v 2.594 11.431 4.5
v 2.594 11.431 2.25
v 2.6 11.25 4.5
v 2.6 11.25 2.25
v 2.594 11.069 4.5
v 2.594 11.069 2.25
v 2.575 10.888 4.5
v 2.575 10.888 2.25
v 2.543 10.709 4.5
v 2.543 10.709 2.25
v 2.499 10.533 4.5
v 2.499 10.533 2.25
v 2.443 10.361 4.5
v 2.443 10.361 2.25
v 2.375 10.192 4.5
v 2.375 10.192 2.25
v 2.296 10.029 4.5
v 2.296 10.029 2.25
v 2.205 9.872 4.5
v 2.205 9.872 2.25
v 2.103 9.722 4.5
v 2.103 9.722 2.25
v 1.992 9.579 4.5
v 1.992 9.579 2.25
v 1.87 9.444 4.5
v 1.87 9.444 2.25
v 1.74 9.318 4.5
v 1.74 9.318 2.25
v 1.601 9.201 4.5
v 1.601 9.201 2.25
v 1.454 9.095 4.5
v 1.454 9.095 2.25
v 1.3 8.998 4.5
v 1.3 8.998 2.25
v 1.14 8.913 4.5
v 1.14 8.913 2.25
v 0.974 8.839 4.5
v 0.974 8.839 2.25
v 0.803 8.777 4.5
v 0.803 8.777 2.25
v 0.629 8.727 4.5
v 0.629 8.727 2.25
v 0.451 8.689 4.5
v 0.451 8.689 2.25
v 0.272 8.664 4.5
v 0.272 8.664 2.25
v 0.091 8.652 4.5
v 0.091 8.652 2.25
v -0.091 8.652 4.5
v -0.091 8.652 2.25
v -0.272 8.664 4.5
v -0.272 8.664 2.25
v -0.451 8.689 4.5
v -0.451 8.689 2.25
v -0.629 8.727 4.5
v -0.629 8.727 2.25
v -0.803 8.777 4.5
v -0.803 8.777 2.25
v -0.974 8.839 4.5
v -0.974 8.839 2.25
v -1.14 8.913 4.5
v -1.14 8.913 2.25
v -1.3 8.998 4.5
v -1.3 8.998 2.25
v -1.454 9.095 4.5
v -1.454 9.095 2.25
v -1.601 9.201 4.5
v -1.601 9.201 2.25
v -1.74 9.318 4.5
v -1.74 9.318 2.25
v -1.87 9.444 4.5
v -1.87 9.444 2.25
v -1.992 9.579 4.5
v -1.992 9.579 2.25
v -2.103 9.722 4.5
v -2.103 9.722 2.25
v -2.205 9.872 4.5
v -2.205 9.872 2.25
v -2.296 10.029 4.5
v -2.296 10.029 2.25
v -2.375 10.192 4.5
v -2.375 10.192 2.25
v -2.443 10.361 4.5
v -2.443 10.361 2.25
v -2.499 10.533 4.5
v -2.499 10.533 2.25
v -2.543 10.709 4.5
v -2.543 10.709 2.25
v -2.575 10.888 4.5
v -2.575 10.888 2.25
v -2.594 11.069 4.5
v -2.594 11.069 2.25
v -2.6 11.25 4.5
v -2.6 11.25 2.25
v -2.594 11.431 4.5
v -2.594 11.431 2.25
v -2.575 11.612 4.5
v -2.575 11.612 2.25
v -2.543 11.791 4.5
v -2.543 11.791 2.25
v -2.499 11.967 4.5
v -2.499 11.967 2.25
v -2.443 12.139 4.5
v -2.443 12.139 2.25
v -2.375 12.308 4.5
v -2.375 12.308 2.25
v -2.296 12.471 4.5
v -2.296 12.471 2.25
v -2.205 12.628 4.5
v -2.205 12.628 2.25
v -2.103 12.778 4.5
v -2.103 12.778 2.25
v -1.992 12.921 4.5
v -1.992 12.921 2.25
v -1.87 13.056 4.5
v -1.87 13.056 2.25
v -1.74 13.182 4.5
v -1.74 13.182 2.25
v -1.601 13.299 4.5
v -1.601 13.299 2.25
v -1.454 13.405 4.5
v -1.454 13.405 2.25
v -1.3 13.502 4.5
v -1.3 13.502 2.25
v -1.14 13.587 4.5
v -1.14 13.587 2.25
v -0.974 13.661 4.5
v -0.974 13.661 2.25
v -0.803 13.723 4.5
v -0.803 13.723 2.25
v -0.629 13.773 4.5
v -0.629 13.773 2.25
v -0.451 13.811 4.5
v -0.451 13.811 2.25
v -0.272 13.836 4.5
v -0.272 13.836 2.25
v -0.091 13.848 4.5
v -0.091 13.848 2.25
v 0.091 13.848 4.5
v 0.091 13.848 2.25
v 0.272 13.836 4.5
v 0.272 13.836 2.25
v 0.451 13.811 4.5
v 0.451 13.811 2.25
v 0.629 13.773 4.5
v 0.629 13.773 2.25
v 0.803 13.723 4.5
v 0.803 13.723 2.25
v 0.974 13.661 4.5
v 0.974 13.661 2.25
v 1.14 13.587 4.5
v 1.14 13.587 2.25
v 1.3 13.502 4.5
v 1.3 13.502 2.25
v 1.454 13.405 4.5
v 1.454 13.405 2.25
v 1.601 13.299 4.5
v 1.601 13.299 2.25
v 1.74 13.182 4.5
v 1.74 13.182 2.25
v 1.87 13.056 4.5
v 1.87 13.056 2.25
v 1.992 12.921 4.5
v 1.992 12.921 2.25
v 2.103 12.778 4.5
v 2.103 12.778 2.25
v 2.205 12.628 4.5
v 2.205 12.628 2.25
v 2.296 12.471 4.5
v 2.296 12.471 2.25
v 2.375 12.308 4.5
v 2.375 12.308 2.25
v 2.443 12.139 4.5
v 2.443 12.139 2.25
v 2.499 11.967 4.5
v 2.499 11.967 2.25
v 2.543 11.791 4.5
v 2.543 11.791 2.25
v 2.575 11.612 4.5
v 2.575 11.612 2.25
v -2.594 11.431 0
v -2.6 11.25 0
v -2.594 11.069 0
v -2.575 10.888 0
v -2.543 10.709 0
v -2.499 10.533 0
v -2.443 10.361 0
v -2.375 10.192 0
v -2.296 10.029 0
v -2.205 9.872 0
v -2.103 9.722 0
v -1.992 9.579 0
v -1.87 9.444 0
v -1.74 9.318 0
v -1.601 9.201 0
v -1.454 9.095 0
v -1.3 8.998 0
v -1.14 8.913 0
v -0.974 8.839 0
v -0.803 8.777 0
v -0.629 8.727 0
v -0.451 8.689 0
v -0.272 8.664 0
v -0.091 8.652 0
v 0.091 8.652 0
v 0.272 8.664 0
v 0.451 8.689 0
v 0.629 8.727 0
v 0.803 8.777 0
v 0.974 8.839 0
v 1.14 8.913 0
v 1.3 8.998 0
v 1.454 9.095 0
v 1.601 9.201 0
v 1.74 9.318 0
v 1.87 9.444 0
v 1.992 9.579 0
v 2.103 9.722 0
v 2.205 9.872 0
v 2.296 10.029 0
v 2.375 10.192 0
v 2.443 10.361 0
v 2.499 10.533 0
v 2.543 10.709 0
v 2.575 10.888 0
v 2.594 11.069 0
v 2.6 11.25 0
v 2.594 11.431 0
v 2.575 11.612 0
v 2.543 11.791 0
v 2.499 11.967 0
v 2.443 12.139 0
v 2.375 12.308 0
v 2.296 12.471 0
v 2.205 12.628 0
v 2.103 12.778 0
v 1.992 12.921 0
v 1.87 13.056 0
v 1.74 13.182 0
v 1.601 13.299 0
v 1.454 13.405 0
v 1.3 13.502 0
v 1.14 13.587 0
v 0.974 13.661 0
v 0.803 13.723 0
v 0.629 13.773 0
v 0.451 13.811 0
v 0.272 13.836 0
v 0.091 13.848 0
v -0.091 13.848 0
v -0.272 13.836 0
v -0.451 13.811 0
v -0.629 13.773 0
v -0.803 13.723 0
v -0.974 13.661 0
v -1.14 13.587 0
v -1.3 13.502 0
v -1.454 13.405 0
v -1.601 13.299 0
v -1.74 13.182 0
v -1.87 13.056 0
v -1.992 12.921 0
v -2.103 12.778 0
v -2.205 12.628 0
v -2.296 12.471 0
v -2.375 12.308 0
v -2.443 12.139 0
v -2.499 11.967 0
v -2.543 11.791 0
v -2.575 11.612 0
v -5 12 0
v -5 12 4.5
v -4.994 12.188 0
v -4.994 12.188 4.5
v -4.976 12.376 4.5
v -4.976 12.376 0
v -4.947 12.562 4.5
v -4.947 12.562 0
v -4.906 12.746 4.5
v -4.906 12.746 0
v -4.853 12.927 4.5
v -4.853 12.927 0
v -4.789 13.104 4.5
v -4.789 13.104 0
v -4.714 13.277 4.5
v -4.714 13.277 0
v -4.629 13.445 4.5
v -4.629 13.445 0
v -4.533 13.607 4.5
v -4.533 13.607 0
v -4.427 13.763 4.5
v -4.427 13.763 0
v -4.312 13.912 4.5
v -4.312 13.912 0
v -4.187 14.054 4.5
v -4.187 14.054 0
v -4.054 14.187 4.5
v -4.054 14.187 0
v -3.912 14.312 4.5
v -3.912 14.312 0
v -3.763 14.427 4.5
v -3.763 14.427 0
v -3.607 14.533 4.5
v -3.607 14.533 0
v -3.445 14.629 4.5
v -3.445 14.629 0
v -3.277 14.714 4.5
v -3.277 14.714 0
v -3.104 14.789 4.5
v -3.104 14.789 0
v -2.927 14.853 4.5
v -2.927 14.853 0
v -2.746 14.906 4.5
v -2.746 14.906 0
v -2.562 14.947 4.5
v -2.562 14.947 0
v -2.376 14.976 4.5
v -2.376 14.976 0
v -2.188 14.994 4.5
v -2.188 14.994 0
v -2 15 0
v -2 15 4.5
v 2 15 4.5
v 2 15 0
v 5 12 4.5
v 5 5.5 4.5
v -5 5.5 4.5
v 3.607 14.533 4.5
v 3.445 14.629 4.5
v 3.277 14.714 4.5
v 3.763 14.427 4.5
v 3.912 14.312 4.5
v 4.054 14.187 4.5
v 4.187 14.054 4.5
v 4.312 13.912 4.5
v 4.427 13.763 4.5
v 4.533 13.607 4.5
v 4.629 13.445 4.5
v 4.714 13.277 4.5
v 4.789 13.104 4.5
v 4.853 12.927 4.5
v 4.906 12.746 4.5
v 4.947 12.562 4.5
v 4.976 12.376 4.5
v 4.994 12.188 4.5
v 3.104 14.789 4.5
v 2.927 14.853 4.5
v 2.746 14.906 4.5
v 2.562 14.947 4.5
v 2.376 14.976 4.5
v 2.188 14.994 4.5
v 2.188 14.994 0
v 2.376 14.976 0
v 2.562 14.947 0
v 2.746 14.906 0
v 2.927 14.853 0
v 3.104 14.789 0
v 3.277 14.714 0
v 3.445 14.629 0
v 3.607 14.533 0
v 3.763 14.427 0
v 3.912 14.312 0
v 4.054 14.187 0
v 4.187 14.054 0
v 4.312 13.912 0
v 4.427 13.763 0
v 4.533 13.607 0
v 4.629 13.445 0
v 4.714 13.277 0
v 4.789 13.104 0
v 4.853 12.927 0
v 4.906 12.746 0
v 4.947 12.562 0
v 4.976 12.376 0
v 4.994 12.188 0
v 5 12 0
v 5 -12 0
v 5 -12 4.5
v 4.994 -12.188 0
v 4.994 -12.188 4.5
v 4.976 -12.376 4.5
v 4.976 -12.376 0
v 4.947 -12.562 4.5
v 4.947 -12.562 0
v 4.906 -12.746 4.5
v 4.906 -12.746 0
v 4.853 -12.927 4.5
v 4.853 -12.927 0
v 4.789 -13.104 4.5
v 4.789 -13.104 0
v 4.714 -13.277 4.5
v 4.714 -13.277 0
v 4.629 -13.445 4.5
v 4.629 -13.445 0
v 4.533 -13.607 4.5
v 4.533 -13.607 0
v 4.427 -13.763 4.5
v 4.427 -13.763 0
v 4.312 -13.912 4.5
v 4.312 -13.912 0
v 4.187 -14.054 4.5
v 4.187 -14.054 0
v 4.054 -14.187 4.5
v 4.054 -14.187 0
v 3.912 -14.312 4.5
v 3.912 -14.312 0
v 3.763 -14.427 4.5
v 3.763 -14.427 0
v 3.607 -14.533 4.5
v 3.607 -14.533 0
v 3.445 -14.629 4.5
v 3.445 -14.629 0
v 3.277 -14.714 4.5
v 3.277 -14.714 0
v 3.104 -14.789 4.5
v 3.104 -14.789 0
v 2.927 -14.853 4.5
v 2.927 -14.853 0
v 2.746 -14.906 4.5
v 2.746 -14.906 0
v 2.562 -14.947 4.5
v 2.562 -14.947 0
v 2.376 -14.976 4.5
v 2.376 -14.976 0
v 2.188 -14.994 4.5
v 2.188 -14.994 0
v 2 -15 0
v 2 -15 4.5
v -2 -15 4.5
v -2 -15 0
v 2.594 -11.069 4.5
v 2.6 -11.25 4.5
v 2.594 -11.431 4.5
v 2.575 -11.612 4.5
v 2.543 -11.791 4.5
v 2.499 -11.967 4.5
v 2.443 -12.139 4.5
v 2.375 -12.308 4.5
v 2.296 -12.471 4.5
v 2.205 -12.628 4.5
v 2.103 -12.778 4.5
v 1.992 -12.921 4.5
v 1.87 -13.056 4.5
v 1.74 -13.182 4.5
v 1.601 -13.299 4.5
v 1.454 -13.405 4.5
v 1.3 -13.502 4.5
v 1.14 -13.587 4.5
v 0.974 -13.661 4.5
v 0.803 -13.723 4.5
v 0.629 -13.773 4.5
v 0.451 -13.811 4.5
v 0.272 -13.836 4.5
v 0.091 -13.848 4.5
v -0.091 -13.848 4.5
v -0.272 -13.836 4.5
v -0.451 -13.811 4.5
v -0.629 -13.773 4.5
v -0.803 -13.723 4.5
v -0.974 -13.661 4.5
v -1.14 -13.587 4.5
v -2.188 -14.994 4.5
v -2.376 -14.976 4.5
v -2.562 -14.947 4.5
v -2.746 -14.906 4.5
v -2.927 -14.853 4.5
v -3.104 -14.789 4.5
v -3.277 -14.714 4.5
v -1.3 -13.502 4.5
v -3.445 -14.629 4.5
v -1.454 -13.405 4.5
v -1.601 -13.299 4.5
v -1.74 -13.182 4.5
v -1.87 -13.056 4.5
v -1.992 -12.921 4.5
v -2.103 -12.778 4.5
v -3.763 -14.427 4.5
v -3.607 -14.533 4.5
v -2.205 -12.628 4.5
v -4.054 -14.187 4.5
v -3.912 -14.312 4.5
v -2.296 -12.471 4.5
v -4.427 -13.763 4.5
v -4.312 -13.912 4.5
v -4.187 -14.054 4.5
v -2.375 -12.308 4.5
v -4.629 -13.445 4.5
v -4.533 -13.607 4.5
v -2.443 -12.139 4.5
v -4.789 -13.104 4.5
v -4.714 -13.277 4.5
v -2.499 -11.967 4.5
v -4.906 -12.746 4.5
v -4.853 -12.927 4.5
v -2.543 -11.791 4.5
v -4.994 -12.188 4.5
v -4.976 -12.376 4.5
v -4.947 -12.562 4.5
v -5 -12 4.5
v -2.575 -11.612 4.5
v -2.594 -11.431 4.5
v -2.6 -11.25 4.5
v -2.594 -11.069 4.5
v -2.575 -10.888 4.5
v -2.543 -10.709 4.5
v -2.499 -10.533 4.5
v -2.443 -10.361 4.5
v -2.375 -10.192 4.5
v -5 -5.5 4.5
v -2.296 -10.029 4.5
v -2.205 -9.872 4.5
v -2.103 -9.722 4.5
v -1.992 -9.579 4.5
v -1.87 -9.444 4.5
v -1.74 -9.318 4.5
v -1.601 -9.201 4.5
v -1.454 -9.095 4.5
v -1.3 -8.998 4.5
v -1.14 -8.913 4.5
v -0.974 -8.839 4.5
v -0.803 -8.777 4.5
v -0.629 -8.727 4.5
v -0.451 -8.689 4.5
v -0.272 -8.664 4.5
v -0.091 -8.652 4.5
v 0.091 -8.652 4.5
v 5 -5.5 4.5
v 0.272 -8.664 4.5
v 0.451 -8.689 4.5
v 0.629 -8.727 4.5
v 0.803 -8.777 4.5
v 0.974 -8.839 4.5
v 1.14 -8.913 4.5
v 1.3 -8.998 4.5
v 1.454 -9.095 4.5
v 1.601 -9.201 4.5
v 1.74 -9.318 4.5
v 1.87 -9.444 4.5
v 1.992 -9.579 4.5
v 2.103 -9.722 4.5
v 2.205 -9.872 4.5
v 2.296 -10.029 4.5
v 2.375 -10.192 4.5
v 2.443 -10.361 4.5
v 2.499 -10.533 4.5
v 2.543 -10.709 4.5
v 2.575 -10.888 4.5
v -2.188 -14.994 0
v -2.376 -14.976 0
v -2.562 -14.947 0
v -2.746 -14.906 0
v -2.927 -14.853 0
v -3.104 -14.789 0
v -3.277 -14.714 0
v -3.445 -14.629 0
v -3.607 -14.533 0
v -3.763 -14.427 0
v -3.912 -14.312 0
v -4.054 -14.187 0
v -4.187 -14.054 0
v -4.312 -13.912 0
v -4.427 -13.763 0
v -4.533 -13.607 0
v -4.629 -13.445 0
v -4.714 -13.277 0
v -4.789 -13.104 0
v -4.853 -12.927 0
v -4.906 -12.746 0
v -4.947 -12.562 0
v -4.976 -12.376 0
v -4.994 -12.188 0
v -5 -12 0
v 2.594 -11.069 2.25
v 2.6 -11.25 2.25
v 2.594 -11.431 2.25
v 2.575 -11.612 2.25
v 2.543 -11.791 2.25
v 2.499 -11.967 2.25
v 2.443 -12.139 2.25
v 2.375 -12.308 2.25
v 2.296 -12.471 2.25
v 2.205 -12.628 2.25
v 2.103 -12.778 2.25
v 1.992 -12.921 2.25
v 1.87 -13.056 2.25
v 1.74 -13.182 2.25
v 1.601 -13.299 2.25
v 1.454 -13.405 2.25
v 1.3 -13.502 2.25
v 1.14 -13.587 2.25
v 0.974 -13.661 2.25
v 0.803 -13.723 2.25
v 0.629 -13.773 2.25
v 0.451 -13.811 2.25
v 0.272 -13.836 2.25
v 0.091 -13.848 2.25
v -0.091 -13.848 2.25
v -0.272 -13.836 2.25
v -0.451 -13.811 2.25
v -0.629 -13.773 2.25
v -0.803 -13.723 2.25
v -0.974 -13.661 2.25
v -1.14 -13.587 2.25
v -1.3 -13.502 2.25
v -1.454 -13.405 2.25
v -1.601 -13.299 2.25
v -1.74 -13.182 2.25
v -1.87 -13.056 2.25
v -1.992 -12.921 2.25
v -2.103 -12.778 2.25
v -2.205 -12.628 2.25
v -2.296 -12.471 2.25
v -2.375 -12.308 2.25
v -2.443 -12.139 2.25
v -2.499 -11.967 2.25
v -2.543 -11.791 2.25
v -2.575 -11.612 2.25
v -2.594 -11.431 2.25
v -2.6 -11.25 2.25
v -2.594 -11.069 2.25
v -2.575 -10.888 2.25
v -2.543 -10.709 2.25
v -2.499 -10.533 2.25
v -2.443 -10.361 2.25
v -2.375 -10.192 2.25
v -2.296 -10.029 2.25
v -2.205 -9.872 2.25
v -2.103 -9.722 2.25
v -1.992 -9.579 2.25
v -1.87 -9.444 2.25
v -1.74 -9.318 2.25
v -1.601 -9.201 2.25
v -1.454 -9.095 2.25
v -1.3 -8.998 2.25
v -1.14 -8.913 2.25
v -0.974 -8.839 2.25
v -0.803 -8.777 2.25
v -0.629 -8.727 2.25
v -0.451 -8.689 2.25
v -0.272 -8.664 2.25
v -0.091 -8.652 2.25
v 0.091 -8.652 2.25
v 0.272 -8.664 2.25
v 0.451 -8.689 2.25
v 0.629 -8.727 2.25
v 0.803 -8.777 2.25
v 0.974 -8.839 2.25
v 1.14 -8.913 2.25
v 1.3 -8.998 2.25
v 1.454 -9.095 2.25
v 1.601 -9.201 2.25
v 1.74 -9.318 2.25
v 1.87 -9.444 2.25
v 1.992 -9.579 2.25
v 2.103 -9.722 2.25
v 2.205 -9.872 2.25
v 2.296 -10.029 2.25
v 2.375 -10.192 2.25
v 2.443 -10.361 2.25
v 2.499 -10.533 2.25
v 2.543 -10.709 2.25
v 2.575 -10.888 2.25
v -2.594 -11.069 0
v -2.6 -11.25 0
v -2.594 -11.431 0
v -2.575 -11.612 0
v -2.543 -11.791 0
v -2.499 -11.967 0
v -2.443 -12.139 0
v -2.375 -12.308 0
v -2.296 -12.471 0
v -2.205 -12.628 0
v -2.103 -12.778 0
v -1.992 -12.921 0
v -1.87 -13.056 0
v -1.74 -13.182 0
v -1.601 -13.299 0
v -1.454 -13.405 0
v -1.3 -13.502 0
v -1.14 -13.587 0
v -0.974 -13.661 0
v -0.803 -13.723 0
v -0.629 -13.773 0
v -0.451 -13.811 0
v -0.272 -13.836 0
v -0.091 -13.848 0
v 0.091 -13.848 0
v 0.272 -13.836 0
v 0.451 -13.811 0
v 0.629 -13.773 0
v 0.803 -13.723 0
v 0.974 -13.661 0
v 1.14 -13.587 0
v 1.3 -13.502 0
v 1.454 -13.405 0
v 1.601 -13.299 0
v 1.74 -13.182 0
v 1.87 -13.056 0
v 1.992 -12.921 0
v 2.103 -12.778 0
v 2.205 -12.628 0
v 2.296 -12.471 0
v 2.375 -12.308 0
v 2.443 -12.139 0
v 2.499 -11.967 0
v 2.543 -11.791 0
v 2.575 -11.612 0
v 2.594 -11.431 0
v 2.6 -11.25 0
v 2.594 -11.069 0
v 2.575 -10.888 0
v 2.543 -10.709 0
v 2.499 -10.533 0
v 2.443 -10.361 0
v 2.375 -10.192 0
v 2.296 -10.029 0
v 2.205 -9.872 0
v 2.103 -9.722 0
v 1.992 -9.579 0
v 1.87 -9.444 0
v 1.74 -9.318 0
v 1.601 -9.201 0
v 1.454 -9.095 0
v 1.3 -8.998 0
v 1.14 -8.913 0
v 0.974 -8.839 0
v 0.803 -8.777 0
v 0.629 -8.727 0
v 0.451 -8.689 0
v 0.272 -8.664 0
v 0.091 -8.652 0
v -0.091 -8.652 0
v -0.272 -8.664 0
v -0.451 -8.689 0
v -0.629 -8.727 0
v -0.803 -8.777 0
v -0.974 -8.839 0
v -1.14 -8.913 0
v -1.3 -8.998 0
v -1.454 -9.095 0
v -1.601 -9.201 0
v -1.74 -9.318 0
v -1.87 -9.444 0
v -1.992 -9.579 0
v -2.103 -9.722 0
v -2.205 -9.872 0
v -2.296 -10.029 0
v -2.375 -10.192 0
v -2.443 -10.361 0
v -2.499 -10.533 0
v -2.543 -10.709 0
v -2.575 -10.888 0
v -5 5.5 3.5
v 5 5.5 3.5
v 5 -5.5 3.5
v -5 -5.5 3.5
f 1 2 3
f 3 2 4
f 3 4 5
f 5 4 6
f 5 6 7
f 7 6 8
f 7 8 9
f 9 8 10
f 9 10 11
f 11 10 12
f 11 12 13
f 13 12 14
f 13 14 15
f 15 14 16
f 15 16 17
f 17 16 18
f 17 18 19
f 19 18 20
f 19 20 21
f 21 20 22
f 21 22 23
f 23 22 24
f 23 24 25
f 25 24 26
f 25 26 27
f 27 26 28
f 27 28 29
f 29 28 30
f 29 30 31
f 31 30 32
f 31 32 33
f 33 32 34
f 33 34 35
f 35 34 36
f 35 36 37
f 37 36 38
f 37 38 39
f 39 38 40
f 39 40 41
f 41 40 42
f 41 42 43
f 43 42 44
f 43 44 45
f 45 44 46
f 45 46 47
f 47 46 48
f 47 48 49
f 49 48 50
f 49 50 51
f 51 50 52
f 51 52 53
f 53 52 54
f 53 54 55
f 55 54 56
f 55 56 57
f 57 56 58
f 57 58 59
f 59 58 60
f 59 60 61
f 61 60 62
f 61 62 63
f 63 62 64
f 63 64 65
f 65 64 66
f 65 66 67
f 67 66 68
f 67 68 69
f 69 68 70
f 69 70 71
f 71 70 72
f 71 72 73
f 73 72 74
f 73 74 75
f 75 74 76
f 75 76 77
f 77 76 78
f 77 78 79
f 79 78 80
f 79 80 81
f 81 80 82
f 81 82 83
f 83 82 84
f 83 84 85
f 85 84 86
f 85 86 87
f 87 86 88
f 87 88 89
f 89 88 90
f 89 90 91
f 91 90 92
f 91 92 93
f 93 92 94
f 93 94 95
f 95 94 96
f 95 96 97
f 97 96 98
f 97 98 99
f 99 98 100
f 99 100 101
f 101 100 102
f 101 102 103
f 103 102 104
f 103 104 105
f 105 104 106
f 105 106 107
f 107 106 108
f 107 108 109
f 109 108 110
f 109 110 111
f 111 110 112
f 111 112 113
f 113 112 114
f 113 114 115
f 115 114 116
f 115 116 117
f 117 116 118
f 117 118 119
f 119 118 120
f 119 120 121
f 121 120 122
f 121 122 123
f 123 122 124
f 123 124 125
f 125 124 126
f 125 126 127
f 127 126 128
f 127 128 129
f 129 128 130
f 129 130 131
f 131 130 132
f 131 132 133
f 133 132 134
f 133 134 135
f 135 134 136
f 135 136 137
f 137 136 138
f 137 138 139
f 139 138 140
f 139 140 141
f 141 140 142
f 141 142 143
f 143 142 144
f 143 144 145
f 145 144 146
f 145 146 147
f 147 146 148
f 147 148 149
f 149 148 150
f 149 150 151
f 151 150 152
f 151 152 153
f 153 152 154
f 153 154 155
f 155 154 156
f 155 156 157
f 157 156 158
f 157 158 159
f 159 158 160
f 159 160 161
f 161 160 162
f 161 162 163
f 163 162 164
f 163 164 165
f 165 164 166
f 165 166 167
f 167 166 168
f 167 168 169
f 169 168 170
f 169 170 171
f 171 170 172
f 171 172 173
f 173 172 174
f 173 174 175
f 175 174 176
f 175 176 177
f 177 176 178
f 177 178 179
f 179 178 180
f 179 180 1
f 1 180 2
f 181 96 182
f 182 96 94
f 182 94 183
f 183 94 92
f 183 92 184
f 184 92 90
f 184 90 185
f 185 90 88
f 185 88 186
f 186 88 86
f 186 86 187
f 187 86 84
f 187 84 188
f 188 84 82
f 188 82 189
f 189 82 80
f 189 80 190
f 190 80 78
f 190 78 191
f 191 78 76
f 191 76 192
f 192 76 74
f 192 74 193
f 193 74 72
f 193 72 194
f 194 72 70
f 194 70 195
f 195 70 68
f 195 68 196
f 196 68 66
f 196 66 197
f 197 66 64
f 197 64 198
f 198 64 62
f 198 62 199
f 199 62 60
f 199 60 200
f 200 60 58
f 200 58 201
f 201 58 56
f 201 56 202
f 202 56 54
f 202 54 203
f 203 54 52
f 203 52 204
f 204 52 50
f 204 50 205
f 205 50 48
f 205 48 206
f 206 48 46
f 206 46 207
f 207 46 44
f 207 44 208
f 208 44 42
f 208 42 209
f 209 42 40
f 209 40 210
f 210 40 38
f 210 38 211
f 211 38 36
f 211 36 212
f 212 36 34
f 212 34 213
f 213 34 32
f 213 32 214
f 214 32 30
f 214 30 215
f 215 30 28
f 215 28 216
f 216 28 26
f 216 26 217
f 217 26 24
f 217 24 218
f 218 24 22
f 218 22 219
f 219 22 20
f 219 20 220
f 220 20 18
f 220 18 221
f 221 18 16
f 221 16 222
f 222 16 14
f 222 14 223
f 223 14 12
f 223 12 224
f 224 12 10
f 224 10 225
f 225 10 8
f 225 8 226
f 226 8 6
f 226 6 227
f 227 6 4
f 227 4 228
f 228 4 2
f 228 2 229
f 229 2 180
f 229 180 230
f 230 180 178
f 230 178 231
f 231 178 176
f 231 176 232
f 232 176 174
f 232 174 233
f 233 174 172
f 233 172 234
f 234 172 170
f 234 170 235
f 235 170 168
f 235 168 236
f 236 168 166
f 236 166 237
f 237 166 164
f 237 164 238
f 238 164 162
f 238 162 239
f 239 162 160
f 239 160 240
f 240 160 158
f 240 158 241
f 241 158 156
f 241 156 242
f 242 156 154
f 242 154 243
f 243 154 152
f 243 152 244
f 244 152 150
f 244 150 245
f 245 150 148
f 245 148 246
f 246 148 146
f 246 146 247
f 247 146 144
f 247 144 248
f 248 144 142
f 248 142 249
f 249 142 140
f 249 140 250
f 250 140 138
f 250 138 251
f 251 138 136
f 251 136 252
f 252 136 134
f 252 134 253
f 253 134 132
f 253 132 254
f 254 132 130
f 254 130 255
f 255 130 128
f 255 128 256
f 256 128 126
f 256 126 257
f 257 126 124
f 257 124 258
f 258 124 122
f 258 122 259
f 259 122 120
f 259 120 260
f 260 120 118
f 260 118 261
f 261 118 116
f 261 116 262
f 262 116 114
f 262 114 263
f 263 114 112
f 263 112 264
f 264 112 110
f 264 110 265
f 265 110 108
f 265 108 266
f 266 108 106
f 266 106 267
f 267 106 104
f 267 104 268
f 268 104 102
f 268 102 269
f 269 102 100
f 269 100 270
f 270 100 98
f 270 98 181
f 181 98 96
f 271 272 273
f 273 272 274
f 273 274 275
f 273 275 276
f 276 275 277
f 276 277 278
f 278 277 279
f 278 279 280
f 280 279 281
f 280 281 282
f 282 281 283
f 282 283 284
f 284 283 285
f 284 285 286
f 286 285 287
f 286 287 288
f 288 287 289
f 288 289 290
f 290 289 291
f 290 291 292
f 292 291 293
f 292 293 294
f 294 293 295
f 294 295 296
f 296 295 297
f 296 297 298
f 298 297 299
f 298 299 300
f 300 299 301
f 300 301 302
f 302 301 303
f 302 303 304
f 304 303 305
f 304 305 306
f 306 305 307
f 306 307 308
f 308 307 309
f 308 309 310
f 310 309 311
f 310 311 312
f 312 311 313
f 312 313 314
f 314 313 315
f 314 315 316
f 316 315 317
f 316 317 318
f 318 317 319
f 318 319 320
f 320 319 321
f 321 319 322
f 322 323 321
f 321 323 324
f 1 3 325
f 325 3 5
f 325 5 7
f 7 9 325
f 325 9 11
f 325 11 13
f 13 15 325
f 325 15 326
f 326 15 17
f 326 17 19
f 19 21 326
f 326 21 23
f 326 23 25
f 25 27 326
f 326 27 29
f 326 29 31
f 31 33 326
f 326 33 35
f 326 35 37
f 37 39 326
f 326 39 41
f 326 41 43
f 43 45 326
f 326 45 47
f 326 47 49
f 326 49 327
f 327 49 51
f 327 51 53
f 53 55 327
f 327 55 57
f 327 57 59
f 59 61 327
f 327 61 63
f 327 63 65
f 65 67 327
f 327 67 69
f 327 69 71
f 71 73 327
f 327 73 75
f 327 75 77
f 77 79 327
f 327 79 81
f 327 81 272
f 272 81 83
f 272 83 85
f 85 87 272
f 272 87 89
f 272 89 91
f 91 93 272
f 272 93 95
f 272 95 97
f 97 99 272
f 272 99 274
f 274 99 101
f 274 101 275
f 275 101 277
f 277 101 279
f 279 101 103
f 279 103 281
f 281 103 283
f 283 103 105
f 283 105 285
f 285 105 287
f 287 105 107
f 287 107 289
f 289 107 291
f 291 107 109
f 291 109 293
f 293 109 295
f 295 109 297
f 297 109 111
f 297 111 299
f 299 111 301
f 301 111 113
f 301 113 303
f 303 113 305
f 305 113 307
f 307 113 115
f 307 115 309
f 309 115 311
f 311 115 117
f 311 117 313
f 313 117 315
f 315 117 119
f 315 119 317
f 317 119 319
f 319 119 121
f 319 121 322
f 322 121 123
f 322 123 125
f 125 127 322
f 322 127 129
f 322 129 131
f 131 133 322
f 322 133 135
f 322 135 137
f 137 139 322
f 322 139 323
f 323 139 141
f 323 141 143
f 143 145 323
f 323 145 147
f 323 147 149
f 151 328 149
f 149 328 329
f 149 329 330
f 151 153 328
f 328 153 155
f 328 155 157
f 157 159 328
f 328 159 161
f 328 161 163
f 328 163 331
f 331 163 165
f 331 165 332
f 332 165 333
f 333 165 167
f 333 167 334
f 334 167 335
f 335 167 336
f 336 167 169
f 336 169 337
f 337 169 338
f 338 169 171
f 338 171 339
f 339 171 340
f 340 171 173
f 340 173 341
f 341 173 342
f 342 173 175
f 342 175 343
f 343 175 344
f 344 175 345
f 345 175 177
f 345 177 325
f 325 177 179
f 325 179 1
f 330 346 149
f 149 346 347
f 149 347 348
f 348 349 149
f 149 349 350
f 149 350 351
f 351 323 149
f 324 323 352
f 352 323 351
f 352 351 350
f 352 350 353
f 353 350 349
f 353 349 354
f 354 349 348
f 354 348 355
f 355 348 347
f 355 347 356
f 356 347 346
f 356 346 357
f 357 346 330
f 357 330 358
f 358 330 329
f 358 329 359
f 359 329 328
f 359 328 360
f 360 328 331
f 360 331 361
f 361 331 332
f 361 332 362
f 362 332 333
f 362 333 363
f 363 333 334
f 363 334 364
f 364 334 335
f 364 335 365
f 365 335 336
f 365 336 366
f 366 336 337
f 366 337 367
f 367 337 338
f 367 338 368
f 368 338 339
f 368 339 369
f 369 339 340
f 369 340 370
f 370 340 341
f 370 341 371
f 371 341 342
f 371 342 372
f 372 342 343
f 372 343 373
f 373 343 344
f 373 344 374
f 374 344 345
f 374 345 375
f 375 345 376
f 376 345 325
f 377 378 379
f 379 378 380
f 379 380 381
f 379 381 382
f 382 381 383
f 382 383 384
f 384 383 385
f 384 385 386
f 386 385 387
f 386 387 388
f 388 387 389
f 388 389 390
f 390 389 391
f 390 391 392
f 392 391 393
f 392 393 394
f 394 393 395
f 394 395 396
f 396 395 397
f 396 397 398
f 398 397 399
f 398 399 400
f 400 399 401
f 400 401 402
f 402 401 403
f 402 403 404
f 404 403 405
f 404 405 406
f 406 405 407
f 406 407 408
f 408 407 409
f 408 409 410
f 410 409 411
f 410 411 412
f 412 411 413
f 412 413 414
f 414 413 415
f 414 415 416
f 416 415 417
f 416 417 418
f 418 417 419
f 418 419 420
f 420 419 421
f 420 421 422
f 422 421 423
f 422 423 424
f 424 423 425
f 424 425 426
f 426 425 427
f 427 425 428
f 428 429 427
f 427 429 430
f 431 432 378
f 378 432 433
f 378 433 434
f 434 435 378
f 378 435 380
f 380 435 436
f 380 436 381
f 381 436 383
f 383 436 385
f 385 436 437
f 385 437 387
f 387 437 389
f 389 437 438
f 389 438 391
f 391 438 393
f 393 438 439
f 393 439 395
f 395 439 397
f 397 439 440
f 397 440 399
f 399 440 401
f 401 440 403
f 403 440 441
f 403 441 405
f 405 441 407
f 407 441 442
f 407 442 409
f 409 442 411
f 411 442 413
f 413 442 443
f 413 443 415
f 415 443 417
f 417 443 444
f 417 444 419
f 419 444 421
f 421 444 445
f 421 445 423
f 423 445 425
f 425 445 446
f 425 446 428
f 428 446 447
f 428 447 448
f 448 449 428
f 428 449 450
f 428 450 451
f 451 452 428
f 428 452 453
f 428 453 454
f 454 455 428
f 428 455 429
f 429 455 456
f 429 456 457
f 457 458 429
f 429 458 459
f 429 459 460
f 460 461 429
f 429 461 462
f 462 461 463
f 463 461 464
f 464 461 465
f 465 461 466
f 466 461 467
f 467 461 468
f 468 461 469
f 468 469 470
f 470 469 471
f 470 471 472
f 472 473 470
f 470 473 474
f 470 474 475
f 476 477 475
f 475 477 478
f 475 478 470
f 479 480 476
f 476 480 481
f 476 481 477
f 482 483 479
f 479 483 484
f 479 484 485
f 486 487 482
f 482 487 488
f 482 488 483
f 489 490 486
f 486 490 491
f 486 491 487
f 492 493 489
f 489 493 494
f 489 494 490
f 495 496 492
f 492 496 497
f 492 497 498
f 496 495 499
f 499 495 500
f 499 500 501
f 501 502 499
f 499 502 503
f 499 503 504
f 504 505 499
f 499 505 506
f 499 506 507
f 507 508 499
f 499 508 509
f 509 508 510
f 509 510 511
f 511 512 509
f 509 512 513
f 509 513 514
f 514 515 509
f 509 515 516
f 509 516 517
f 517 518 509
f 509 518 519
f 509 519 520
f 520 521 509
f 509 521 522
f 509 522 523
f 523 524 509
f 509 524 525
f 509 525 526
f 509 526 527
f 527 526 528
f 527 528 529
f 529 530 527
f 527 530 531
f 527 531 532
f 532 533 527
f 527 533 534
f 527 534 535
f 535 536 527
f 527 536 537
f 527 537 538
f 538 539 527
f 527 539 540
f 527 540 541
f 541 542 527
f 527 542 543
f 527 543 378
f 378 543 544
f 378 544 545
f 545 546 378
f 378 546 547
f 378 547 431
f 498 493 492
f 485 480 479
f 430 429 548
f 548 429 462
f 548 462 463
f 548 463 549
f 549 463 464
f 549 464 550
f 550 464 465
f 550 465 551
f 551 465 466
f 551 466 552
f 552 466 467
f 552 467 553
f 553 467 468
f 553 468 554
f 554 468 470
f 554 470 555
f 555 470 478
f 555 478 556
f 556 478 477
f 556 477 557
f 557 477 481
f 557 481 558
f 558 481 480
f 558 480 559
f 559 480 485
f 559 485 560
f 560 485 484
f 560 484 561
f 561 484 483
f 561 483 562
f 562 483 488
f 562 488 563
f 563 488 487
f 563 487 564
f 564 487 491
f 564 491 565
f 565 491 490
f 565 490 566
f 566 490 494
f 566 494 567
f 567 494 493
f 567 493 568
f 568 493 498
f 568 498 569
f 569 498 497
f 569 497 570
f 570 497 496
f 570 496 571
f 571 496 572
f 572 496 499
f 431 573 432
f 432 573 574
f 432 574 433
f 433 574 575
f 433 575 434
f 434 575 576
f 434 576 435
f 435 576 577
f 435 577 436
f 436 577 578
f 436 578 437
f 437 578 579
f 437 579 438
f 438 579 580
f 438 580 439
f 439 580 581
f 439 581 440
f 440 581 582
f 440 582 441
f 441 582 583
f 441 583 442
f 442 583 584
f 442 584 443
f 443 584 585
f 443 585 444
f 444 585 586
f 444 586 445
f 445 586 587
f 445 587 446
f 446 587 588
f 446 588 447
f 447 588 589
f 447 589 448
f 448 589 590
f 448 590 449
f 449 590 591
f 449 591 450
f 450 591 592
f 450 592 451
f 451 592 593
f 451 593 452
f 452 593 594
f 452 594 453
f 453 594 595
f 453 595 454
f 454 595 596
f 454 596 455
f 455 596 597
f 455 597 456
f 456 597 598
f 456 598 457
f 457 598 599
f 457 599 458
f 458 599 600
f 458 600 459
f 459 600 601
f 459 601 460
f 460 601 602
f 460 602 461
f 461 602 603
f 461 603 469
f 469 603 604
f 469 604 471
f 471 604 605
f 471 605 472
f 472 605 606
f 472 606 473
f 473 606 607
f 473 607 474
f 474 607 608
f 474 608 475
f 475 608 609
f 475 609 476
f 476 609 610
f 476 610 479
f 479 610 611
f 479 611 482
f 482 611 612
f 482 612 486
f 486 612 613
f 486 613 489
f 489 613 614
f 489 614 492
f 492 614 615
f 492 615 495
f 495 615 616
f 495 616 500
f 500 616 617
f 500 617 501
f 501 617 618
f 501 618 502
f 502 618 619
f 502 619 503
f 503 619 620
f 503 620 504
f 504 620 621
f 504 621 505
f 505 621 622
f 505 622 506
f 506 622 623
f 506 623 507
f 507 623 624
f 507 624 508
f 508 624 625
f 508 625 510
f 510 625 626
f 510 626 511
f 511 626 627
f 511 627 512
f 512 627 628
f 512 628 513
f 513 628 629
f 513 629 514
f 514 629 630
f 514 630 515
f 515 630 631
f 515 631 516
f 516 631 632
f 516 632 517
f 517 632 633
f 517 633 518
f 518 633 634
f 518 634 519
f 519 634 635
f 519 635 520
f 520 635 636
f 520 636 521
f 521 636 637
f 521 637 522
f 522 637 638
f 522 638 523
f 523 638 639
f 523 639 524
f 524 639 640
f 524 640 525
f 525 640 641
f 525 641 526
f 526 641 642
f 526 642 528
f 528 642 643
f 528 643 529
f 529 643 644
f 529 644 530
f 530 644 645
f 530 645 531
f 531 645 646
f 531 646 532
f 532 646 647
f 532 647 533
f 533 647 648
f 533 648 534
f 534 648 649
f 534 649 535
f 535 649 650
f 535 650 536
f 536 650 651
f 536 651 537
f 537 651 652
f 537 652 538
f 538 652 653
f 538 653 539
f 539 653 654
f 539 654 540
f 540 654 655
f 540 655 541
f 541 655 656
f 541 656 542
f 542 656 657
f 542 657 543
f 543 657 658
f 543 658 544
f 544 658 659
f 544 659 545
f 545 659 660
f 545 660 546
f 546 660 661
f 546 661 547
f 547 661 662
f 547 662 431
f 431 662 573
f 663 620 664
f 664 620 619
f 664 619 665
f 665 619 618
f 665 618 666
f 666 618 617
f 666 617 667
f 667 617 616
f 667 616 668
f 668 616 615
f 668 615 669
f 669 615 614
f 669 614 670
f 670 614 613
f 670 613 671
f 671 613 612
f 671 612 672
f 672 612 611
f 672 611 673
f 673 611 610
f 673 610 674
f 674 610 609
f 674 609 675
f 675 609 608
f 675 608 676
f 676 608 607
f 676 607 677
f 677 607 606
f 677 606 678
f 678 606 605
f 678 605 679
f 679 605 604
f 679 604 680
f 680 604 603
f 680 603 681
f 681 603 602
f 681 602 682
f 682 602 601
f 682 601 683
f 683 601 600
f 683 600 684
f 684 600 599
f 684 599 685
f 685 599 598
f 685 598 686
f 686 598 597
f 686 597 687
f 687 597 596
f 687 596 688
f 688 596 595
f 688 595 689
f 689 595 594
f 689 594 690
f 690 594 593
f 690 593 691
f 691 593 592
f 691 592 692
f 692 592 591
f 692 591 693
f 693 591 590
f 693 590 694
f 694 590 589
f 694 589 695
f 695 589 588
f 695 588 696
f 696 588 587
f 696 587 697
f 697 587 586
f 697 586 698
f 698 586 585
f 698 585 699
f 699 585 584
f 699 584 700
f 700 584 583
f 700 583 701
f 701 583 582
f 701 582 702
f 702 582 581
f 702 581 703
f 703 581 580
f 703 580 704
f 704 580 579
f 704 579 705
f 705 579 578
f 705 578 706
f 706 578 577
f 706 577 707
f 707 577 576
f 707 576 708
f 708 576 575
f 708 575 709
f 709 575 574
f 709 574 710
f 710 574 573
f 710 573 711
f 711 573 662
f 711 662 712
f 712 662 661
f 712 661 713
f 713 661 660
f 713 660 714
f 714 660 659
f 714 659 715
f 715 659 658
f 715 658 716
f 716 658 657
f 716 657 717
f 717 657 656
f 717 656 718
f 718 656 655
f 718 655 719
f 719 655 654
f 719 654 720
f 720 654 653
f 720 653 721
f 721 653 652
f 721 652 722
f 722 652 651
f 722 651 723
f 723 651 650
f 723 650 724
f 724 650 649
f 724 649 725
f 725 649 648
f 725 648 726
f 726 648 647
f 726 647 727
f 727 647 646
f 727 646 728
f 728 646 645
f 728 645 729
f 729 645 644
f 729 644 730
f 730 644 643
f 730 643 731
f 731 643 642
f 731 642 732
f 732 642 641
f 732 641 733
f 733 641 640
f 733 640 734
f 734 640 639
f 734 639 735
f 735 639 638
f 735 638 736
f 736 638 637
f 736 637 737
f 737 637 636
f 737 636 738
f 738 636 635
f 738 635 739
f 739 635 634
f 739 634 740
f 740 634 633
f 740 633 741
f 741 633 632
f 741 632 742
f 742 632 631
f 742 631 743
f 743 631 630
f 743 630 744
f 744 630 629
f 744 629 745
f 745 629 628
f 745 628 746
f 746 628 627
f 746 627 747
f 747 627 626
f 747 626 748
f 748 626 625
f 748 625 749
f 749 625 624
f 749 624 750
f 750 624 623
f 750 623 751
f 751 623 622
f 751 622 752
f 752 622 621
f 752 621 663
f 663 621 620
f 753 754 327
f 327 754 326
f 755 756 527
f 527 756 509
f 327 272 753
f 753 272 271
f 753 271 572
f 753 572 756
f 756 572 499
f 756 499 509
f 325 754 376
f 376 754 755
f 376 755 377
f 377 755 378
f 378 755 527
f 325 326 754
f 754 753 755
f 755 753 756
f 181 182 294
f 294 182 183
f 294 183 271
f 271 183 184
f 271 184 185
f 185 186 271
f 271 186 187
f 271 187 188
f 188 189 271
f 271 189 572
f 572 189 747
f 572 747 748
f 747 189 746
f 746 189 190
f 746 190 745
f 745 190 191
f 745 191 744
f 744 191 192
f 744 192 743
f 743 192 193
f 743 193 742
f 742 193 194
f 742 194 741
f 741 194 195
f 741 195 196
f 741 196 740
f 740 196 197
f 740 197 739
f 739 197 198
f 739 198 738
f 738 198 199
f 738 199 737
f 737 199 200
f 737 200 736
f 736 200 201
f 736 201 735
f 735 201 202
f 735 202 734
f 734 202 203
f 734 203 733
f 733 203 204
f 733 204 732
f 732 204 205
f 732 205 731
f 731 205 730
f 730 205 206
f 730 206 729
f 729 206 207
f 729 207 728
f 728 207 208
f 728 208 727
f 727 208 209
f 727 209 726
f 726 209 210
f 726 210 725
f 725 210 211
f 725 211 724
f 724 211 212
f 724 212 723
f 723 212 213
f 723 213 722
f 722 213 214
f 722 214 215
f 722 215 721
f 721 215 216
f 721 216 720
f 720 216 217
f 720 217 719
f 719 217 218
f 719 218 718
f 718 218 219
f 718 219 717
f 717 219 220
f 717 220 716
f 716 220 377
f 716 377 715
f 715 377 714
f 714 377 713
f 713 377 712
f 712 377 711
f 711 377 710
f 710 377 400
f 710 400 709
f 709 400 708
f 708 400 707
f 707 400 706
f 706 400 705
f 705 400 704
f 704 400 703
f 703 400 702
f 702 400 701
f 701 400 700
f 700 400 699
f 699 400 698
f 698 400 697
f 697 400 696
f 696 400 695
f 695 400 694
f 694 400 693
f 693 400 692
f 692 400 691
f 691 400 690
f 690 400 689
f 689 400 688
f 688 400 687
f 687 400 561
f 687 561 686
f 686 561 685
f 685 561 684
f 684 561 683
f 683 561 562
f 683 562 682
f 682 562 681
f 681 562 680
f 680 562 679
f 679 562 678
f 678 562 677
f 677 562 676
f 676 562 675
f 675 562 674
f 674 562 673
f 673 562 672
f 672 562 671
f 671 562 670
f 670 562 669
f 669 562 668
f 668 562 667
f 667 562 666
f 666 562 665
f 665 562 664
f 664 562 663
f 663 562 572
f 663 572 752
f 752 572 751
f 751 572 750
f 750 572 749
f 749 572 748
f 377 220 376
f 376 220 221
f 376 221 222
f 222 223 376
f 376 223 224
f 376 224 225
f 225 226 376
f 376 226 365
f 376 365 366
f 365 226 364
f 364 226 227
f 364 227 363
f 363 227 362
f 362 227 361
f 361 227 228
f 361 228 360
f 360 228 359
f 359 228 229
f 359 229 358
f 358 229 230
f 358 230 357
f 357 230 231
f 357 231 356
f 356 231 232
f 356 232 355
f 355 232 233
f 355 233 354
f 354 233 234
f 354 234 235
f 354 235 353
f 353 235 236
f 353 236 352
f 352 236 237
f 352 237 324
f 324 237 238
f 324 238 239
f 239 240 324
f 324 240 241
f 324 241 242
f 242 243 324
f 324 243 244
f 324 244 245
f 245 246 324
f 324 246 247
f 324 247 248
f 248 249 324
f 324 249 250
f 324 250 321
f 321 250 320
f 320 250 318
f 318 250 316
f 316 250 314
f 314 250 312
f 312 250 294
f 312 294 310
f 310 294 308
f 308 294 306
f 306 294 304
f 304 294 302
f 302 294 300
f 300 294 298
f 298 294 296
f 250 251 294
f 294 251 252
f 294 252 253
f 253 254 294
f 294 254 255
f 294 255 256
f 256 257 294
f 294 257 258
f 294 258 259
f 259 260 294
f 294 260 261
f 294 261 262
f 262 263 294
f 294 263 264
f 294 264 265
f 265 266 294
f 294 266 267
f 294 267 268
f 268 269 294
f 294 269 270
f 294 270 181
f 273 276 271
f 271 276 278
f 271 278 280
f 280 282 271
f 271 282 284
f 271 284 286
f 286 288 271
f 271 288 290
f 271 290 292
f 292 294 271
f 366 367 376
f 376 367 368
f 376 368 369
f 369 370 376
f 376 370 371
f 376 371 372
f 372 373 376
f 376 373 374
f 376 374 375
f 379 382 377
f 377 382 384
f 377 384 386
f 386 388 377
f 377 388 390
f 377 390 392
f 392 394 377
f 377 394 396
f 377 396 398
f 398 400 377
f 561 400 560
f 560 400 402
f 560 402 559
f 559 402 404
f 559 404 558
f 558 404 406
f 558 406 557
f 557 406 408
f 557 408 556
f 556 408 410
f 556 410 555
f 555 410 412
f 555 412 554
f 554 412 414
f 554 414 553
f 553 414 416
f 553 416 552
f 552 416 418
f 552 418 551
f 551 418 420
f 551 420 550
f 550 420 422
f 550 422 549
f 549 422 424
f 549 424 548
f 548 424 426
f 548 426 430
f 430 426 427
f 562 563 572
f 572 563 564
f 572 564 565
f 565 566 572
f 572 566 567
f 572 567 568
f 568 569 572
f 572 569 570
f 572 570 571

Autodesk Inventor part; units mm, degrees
ref_plane "YZ Plane" through (0, 0, 0) normal (1, 0, 0) x (0, 1, 0)
ref_plane "XZ Plane" through (0, 0, 0) normal (0, 1, 0) x (-1, 0, 0)
ref_plane "XY Plane" through (0, 0, 0) normal (0, 0, 1) x (1, 0, 0)
sketch "Skizze2" plane through (0, 0, 0) normal (0, 0, 1) x (1, 0, 0)
  line L0 (-5, 7) -> (5, 7)
  line L1 (5, 7) -> (5, -7)
  line L2 (5, -7) -> (-5, -7)
  line L3 (-5, -7) -> (-5, 7)
  line L4 (0, 9.8) -> (0, -9.8) projected
  line L5 (-7, 0) -> (7, 0) projected
  point P0 (0, 0)
  point P1 (-5, 0)
  point P2 (0, 7)
  dimension "d0" = 14
  dimension "d1" = 10
extrude "Extrusion1" add sketch "Skizze2" along normal blind 3.5
sketch "Skizze3" plane through (0, 0, 3.5) normal (0, 0, 1) x (1, 0, 0)
  line L0 (5, -7) -> (5, 7) projected
  line L1 (5, 7) -> (-5, 7) projected
  line L2 (-5, 7) -> (-5, -7) projected
  line L3 (-5, -7) -> (5, -7) projected
  line L4 (5, 7) -> (-5, 7)
  line L5 (-5, 7) -> (-5, 5.5)
  line L6 (-5, 5.5) -> (5, 5.5)
  line L7 (5, 5.5) -> (5, 7)
  line L8 (-5, 7) -> (-5, -7) projected
  line L9 (-5, -7) -> (5, -7)
  line L10 (5, -7) -> (5, -5.5)
  line L11 (5, -5.5) -> (-5, -5.5)
  line L12 (-5, -5.5) -> (-5, -7)
  point P0 (0, 0)
  dimension "d4" = 1.5
  dimension "d5" = 1.5
extrude "Extrusion2" add sketch "Skizze3" along normal blind 1 contours L3 L2 L11 L0 | L6 L2 L1 L0
sketch "Skizze4" plane through (0, 0, 0) normal (0, 0, -1) x (-1, 0, 0)
  line L0 (5, -7) -> (-5, -7) projected
  line L1 (5, -7) -> (-5, -7)
  line L2 (-5, -7) -> (-5, -15)
  line L3 (-5, -15) -> (5, -15)
  line L4 (5, -15) -> (5, -7)
  line L5 (-5, 7) -> (5, 7)
  line L6 (5, 7) -> (5, 15)
  line L7 (5, 15) -> (-5, 15)
  line L8 (-5, 15) -> (-5, 7)
  line L9 (5, -7) -> (-5, -7) projected
  line L10 (-5, 7) -> (5, 7) projected
  line L11 (5, 7) -> (5, -7) projected
  line L12 (-5, -7) -> (-5, 7) projected
  line L13 (5, 5.5) -> (5, -5.5) projected
  point P0 (0, 0)
  point P1 (-5, -7)
  point P2 (0, -15)
  point P3 (0, -11)
  point P4 (0, 11)
  point P5 (5, -11)
  point P6 (5, 11)
  dimension "d8" = 8
  dimension "d9" = 8
  dimension "d31" = 10
  dimension "d32" = 22
extrude "Extrusion3" add sketch "Skizze4" against normal up to surface (4.5 mm away) contours L4 L3 L2 L0 | L8 L7 L6 L5
sketch "Skizze5" plane through (0, 0, 0) normal (0, 0, -1) x (-1, 0, 0)
  line L0 (-5, 5.5) -> (-5, 15) projected
  line L1 (-5, -5.5) -> (-5, -15) projected
  line L2 (-5, -15) -> (5, -15) projected
  line L3 (5, 15) -> (-5, 15) projected
  line L4 (-7, 0) -> (7, 0) projected
  point P0 (0, 11.25)
  point P1 (0, -11.25)
  point P2 (0, -15)
  point P3 (0, 15)
  dimension "d39" = 22.5
  dimension "d40" = 11.25
hole "Bohrung1" at (0, -11.25, 0) direction (0, 0, 1) diameter 5.2 end through all
fillet "Rundung1" radius 3 4 edges at (-5, -15, 2.25) (5, -15, 2.25) (5, 15, 2.25) (-5, 15, 2.25)
pattern_linear "Rechteckige Anordnung1" count 2 spacing 22.5 along (0, 1, 0) of "Bohrung1"
equation "\"d5\" = d4"
equation "\"d9\" = d8"
equation "\"d24\" = d34"
equation "\"d34\" = 22.5"
properties part number "LED_Strip_Halter_einzeln" material "PA 6 schwarz"
